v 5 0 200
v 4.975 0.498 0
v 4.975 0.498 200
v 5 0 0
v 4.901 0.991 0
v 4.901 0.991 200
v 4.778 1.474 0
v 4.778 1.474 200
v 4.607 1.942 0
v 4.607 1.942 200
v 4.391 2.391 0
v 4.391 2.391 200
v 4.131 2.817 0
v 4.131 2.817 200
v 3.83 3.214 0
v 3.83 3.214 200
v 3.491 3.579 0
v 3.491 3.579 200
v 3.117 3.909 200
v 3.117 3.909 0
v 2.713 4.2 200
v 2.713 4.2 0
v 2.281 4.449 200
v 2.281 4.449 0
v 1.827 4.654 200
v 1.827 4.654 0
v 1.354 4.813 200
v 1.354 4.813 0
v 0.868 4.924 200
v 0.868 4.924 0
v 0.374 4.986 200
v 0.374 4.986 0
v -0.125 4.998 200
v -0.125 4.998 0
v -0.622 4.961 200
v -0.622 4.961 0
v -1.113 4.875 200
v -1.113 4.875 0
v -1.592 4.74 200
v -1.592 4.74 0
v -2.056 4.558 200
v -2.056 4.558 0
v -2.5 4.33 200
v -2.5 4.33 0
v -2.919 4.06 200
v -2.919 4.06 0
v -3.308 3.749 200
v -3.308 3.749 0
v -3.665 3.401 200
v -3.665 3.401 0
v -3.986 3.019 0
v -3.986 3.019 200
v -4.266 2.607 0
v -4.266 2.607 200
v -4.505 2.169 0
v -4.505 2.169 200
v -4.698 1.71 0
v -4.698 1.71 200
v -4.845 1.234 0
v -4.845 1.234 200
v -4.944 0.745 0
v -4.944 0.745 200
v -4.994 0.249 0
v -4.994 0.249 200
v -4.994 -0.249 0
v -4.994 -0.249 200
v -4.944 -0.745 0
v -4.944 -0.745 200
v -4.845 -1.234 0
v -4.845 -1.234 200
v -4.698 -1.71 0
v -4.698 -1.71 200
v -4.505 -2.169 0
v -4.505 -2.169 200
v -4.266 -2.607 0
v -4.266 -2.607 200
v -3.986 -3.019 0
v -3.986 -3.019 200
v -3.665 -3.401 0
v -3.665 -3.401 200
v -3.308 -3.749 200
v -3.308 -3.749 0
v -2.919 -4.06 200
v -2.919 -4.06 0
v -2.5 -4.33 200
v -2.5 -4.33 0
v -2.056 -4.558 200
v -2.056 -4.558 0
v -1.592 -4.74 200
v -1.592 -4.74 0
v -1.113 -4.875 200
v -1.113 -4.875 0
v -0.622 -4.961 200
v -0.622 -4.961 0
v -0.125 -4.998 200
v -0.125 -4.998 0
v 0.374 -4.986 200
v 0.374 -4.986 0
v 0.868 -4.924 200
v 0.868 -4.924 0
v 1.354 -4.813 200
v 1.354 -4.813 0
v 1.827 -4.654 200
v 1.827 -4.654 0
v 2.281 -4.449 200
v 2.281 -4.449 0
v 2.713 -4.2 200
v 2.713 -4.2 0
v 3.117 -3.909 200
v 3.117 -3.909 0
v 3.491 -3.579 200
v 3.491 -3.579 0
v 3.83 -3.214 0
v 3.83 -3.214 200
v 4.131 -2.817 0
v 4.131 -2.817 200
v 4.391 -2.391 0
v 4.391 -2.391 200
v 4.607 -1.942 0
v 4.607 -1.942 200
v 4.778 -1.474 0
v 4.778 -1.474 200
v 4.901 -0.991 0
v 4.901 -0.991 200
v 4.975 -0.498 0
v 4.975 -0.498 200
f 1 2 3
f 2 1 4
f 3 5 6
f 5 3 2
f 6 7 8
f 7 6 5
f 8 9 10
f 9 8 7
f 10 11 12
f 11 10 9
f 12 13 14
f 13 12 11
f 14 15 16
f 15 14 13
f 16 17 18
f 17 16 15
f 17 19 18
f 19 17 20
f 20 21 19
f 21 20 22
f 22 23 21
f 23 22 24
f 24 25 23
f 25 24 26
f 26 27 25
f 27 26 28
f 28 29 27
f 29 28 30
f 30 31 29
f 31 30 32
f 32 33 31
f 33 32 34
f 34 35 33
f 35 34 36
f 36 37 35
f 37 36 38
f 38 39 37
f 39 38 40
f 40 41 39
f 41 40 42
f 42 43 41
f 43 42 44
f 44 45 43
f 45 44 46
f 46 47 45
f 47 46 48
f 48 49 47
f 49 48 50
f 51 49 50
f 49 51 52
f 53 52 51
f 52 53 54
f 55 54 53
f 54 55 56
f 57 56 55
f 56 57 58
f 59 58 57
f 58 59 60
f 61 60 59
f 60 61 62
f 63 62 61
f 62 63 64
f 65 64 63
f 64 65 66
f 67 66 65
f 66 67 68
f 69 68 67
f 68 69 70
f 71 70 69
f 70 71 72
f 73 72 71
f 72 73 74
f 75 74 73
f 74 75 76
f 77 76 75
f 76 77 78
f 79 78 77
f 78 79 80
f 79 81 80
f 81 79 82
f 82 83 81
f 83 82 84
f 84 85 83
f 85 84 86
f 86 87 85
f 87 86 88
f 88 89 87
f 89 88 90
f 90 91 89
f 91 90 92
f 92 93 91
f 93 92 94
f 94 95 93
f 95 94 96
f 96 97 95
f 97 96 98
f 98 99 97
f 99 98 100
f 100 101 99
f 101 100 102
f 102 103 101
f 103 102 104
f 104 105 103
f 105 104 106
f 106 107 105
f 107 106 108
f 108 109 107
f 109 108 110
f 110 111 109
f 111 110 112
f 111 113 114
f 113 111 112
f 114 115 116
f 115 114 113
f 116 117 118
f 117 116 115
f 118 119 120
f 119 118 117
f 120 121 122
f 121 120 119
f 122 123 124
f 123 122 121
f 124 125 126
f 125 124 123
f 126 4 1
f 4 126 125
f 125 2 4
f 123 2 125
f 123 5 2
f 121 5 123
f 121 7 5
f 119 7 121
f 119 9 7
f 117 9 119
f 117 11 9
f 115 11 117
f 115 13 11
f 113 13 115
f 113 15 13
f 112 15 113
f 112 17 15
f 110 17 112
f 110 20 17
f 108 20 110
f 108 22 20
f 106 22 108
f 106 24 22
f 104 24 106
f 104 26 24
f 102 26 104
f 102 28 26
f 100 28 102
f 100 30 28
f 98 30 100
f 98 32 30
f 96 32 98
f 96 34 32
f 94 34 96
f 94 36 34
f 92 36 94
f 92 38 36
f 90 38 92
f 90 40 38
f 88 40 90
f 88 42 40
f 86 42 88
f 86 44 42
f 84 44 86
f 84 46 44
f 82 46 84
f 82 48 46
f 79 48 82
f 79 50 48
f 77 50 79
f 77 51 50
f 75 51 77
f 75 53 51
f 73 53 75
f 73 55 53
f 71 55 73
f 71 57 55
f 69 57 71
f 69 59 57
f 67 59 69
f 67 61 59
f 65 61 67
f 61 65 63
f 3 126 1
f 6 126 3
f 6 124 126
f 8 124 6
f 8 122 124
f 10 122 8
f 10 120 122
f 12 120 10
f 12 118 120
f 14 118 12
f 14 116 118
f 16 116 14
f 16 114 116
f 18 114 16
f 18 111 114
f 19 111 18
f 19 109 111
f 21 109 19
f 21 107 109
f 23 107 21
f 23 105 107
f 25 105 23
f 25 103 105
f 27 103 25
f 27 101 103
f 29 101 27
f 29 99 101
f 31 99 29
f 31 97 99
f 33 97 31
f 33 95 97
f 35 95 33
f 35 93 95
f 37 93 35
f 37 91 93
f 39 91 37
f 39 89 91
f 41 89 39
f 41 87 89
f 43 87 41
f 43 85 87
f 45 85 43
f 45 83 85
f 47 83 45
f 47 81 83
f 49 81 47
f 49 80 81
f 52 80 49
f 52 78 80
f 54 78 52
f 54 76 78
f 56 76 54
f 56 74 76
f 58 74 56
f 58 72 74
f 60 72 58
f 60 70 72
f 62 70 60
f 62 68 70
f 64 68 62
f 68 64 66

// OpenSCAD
// Cylinder: 10 mm × 200 mm
// 单位默认是毫米 (mm)

$fa = 1;            // 细分角度；越小模型越光滑
$fs = 0.5;          // 最小边长，同样影响光滑度

cylinder(h = 200,   // 高度 200 mm = 20 cm
         d = 10,    // 直径 10 mm = 1 cm
         center = false);  // 底面位于 Z=0，顶面在 Z=200
